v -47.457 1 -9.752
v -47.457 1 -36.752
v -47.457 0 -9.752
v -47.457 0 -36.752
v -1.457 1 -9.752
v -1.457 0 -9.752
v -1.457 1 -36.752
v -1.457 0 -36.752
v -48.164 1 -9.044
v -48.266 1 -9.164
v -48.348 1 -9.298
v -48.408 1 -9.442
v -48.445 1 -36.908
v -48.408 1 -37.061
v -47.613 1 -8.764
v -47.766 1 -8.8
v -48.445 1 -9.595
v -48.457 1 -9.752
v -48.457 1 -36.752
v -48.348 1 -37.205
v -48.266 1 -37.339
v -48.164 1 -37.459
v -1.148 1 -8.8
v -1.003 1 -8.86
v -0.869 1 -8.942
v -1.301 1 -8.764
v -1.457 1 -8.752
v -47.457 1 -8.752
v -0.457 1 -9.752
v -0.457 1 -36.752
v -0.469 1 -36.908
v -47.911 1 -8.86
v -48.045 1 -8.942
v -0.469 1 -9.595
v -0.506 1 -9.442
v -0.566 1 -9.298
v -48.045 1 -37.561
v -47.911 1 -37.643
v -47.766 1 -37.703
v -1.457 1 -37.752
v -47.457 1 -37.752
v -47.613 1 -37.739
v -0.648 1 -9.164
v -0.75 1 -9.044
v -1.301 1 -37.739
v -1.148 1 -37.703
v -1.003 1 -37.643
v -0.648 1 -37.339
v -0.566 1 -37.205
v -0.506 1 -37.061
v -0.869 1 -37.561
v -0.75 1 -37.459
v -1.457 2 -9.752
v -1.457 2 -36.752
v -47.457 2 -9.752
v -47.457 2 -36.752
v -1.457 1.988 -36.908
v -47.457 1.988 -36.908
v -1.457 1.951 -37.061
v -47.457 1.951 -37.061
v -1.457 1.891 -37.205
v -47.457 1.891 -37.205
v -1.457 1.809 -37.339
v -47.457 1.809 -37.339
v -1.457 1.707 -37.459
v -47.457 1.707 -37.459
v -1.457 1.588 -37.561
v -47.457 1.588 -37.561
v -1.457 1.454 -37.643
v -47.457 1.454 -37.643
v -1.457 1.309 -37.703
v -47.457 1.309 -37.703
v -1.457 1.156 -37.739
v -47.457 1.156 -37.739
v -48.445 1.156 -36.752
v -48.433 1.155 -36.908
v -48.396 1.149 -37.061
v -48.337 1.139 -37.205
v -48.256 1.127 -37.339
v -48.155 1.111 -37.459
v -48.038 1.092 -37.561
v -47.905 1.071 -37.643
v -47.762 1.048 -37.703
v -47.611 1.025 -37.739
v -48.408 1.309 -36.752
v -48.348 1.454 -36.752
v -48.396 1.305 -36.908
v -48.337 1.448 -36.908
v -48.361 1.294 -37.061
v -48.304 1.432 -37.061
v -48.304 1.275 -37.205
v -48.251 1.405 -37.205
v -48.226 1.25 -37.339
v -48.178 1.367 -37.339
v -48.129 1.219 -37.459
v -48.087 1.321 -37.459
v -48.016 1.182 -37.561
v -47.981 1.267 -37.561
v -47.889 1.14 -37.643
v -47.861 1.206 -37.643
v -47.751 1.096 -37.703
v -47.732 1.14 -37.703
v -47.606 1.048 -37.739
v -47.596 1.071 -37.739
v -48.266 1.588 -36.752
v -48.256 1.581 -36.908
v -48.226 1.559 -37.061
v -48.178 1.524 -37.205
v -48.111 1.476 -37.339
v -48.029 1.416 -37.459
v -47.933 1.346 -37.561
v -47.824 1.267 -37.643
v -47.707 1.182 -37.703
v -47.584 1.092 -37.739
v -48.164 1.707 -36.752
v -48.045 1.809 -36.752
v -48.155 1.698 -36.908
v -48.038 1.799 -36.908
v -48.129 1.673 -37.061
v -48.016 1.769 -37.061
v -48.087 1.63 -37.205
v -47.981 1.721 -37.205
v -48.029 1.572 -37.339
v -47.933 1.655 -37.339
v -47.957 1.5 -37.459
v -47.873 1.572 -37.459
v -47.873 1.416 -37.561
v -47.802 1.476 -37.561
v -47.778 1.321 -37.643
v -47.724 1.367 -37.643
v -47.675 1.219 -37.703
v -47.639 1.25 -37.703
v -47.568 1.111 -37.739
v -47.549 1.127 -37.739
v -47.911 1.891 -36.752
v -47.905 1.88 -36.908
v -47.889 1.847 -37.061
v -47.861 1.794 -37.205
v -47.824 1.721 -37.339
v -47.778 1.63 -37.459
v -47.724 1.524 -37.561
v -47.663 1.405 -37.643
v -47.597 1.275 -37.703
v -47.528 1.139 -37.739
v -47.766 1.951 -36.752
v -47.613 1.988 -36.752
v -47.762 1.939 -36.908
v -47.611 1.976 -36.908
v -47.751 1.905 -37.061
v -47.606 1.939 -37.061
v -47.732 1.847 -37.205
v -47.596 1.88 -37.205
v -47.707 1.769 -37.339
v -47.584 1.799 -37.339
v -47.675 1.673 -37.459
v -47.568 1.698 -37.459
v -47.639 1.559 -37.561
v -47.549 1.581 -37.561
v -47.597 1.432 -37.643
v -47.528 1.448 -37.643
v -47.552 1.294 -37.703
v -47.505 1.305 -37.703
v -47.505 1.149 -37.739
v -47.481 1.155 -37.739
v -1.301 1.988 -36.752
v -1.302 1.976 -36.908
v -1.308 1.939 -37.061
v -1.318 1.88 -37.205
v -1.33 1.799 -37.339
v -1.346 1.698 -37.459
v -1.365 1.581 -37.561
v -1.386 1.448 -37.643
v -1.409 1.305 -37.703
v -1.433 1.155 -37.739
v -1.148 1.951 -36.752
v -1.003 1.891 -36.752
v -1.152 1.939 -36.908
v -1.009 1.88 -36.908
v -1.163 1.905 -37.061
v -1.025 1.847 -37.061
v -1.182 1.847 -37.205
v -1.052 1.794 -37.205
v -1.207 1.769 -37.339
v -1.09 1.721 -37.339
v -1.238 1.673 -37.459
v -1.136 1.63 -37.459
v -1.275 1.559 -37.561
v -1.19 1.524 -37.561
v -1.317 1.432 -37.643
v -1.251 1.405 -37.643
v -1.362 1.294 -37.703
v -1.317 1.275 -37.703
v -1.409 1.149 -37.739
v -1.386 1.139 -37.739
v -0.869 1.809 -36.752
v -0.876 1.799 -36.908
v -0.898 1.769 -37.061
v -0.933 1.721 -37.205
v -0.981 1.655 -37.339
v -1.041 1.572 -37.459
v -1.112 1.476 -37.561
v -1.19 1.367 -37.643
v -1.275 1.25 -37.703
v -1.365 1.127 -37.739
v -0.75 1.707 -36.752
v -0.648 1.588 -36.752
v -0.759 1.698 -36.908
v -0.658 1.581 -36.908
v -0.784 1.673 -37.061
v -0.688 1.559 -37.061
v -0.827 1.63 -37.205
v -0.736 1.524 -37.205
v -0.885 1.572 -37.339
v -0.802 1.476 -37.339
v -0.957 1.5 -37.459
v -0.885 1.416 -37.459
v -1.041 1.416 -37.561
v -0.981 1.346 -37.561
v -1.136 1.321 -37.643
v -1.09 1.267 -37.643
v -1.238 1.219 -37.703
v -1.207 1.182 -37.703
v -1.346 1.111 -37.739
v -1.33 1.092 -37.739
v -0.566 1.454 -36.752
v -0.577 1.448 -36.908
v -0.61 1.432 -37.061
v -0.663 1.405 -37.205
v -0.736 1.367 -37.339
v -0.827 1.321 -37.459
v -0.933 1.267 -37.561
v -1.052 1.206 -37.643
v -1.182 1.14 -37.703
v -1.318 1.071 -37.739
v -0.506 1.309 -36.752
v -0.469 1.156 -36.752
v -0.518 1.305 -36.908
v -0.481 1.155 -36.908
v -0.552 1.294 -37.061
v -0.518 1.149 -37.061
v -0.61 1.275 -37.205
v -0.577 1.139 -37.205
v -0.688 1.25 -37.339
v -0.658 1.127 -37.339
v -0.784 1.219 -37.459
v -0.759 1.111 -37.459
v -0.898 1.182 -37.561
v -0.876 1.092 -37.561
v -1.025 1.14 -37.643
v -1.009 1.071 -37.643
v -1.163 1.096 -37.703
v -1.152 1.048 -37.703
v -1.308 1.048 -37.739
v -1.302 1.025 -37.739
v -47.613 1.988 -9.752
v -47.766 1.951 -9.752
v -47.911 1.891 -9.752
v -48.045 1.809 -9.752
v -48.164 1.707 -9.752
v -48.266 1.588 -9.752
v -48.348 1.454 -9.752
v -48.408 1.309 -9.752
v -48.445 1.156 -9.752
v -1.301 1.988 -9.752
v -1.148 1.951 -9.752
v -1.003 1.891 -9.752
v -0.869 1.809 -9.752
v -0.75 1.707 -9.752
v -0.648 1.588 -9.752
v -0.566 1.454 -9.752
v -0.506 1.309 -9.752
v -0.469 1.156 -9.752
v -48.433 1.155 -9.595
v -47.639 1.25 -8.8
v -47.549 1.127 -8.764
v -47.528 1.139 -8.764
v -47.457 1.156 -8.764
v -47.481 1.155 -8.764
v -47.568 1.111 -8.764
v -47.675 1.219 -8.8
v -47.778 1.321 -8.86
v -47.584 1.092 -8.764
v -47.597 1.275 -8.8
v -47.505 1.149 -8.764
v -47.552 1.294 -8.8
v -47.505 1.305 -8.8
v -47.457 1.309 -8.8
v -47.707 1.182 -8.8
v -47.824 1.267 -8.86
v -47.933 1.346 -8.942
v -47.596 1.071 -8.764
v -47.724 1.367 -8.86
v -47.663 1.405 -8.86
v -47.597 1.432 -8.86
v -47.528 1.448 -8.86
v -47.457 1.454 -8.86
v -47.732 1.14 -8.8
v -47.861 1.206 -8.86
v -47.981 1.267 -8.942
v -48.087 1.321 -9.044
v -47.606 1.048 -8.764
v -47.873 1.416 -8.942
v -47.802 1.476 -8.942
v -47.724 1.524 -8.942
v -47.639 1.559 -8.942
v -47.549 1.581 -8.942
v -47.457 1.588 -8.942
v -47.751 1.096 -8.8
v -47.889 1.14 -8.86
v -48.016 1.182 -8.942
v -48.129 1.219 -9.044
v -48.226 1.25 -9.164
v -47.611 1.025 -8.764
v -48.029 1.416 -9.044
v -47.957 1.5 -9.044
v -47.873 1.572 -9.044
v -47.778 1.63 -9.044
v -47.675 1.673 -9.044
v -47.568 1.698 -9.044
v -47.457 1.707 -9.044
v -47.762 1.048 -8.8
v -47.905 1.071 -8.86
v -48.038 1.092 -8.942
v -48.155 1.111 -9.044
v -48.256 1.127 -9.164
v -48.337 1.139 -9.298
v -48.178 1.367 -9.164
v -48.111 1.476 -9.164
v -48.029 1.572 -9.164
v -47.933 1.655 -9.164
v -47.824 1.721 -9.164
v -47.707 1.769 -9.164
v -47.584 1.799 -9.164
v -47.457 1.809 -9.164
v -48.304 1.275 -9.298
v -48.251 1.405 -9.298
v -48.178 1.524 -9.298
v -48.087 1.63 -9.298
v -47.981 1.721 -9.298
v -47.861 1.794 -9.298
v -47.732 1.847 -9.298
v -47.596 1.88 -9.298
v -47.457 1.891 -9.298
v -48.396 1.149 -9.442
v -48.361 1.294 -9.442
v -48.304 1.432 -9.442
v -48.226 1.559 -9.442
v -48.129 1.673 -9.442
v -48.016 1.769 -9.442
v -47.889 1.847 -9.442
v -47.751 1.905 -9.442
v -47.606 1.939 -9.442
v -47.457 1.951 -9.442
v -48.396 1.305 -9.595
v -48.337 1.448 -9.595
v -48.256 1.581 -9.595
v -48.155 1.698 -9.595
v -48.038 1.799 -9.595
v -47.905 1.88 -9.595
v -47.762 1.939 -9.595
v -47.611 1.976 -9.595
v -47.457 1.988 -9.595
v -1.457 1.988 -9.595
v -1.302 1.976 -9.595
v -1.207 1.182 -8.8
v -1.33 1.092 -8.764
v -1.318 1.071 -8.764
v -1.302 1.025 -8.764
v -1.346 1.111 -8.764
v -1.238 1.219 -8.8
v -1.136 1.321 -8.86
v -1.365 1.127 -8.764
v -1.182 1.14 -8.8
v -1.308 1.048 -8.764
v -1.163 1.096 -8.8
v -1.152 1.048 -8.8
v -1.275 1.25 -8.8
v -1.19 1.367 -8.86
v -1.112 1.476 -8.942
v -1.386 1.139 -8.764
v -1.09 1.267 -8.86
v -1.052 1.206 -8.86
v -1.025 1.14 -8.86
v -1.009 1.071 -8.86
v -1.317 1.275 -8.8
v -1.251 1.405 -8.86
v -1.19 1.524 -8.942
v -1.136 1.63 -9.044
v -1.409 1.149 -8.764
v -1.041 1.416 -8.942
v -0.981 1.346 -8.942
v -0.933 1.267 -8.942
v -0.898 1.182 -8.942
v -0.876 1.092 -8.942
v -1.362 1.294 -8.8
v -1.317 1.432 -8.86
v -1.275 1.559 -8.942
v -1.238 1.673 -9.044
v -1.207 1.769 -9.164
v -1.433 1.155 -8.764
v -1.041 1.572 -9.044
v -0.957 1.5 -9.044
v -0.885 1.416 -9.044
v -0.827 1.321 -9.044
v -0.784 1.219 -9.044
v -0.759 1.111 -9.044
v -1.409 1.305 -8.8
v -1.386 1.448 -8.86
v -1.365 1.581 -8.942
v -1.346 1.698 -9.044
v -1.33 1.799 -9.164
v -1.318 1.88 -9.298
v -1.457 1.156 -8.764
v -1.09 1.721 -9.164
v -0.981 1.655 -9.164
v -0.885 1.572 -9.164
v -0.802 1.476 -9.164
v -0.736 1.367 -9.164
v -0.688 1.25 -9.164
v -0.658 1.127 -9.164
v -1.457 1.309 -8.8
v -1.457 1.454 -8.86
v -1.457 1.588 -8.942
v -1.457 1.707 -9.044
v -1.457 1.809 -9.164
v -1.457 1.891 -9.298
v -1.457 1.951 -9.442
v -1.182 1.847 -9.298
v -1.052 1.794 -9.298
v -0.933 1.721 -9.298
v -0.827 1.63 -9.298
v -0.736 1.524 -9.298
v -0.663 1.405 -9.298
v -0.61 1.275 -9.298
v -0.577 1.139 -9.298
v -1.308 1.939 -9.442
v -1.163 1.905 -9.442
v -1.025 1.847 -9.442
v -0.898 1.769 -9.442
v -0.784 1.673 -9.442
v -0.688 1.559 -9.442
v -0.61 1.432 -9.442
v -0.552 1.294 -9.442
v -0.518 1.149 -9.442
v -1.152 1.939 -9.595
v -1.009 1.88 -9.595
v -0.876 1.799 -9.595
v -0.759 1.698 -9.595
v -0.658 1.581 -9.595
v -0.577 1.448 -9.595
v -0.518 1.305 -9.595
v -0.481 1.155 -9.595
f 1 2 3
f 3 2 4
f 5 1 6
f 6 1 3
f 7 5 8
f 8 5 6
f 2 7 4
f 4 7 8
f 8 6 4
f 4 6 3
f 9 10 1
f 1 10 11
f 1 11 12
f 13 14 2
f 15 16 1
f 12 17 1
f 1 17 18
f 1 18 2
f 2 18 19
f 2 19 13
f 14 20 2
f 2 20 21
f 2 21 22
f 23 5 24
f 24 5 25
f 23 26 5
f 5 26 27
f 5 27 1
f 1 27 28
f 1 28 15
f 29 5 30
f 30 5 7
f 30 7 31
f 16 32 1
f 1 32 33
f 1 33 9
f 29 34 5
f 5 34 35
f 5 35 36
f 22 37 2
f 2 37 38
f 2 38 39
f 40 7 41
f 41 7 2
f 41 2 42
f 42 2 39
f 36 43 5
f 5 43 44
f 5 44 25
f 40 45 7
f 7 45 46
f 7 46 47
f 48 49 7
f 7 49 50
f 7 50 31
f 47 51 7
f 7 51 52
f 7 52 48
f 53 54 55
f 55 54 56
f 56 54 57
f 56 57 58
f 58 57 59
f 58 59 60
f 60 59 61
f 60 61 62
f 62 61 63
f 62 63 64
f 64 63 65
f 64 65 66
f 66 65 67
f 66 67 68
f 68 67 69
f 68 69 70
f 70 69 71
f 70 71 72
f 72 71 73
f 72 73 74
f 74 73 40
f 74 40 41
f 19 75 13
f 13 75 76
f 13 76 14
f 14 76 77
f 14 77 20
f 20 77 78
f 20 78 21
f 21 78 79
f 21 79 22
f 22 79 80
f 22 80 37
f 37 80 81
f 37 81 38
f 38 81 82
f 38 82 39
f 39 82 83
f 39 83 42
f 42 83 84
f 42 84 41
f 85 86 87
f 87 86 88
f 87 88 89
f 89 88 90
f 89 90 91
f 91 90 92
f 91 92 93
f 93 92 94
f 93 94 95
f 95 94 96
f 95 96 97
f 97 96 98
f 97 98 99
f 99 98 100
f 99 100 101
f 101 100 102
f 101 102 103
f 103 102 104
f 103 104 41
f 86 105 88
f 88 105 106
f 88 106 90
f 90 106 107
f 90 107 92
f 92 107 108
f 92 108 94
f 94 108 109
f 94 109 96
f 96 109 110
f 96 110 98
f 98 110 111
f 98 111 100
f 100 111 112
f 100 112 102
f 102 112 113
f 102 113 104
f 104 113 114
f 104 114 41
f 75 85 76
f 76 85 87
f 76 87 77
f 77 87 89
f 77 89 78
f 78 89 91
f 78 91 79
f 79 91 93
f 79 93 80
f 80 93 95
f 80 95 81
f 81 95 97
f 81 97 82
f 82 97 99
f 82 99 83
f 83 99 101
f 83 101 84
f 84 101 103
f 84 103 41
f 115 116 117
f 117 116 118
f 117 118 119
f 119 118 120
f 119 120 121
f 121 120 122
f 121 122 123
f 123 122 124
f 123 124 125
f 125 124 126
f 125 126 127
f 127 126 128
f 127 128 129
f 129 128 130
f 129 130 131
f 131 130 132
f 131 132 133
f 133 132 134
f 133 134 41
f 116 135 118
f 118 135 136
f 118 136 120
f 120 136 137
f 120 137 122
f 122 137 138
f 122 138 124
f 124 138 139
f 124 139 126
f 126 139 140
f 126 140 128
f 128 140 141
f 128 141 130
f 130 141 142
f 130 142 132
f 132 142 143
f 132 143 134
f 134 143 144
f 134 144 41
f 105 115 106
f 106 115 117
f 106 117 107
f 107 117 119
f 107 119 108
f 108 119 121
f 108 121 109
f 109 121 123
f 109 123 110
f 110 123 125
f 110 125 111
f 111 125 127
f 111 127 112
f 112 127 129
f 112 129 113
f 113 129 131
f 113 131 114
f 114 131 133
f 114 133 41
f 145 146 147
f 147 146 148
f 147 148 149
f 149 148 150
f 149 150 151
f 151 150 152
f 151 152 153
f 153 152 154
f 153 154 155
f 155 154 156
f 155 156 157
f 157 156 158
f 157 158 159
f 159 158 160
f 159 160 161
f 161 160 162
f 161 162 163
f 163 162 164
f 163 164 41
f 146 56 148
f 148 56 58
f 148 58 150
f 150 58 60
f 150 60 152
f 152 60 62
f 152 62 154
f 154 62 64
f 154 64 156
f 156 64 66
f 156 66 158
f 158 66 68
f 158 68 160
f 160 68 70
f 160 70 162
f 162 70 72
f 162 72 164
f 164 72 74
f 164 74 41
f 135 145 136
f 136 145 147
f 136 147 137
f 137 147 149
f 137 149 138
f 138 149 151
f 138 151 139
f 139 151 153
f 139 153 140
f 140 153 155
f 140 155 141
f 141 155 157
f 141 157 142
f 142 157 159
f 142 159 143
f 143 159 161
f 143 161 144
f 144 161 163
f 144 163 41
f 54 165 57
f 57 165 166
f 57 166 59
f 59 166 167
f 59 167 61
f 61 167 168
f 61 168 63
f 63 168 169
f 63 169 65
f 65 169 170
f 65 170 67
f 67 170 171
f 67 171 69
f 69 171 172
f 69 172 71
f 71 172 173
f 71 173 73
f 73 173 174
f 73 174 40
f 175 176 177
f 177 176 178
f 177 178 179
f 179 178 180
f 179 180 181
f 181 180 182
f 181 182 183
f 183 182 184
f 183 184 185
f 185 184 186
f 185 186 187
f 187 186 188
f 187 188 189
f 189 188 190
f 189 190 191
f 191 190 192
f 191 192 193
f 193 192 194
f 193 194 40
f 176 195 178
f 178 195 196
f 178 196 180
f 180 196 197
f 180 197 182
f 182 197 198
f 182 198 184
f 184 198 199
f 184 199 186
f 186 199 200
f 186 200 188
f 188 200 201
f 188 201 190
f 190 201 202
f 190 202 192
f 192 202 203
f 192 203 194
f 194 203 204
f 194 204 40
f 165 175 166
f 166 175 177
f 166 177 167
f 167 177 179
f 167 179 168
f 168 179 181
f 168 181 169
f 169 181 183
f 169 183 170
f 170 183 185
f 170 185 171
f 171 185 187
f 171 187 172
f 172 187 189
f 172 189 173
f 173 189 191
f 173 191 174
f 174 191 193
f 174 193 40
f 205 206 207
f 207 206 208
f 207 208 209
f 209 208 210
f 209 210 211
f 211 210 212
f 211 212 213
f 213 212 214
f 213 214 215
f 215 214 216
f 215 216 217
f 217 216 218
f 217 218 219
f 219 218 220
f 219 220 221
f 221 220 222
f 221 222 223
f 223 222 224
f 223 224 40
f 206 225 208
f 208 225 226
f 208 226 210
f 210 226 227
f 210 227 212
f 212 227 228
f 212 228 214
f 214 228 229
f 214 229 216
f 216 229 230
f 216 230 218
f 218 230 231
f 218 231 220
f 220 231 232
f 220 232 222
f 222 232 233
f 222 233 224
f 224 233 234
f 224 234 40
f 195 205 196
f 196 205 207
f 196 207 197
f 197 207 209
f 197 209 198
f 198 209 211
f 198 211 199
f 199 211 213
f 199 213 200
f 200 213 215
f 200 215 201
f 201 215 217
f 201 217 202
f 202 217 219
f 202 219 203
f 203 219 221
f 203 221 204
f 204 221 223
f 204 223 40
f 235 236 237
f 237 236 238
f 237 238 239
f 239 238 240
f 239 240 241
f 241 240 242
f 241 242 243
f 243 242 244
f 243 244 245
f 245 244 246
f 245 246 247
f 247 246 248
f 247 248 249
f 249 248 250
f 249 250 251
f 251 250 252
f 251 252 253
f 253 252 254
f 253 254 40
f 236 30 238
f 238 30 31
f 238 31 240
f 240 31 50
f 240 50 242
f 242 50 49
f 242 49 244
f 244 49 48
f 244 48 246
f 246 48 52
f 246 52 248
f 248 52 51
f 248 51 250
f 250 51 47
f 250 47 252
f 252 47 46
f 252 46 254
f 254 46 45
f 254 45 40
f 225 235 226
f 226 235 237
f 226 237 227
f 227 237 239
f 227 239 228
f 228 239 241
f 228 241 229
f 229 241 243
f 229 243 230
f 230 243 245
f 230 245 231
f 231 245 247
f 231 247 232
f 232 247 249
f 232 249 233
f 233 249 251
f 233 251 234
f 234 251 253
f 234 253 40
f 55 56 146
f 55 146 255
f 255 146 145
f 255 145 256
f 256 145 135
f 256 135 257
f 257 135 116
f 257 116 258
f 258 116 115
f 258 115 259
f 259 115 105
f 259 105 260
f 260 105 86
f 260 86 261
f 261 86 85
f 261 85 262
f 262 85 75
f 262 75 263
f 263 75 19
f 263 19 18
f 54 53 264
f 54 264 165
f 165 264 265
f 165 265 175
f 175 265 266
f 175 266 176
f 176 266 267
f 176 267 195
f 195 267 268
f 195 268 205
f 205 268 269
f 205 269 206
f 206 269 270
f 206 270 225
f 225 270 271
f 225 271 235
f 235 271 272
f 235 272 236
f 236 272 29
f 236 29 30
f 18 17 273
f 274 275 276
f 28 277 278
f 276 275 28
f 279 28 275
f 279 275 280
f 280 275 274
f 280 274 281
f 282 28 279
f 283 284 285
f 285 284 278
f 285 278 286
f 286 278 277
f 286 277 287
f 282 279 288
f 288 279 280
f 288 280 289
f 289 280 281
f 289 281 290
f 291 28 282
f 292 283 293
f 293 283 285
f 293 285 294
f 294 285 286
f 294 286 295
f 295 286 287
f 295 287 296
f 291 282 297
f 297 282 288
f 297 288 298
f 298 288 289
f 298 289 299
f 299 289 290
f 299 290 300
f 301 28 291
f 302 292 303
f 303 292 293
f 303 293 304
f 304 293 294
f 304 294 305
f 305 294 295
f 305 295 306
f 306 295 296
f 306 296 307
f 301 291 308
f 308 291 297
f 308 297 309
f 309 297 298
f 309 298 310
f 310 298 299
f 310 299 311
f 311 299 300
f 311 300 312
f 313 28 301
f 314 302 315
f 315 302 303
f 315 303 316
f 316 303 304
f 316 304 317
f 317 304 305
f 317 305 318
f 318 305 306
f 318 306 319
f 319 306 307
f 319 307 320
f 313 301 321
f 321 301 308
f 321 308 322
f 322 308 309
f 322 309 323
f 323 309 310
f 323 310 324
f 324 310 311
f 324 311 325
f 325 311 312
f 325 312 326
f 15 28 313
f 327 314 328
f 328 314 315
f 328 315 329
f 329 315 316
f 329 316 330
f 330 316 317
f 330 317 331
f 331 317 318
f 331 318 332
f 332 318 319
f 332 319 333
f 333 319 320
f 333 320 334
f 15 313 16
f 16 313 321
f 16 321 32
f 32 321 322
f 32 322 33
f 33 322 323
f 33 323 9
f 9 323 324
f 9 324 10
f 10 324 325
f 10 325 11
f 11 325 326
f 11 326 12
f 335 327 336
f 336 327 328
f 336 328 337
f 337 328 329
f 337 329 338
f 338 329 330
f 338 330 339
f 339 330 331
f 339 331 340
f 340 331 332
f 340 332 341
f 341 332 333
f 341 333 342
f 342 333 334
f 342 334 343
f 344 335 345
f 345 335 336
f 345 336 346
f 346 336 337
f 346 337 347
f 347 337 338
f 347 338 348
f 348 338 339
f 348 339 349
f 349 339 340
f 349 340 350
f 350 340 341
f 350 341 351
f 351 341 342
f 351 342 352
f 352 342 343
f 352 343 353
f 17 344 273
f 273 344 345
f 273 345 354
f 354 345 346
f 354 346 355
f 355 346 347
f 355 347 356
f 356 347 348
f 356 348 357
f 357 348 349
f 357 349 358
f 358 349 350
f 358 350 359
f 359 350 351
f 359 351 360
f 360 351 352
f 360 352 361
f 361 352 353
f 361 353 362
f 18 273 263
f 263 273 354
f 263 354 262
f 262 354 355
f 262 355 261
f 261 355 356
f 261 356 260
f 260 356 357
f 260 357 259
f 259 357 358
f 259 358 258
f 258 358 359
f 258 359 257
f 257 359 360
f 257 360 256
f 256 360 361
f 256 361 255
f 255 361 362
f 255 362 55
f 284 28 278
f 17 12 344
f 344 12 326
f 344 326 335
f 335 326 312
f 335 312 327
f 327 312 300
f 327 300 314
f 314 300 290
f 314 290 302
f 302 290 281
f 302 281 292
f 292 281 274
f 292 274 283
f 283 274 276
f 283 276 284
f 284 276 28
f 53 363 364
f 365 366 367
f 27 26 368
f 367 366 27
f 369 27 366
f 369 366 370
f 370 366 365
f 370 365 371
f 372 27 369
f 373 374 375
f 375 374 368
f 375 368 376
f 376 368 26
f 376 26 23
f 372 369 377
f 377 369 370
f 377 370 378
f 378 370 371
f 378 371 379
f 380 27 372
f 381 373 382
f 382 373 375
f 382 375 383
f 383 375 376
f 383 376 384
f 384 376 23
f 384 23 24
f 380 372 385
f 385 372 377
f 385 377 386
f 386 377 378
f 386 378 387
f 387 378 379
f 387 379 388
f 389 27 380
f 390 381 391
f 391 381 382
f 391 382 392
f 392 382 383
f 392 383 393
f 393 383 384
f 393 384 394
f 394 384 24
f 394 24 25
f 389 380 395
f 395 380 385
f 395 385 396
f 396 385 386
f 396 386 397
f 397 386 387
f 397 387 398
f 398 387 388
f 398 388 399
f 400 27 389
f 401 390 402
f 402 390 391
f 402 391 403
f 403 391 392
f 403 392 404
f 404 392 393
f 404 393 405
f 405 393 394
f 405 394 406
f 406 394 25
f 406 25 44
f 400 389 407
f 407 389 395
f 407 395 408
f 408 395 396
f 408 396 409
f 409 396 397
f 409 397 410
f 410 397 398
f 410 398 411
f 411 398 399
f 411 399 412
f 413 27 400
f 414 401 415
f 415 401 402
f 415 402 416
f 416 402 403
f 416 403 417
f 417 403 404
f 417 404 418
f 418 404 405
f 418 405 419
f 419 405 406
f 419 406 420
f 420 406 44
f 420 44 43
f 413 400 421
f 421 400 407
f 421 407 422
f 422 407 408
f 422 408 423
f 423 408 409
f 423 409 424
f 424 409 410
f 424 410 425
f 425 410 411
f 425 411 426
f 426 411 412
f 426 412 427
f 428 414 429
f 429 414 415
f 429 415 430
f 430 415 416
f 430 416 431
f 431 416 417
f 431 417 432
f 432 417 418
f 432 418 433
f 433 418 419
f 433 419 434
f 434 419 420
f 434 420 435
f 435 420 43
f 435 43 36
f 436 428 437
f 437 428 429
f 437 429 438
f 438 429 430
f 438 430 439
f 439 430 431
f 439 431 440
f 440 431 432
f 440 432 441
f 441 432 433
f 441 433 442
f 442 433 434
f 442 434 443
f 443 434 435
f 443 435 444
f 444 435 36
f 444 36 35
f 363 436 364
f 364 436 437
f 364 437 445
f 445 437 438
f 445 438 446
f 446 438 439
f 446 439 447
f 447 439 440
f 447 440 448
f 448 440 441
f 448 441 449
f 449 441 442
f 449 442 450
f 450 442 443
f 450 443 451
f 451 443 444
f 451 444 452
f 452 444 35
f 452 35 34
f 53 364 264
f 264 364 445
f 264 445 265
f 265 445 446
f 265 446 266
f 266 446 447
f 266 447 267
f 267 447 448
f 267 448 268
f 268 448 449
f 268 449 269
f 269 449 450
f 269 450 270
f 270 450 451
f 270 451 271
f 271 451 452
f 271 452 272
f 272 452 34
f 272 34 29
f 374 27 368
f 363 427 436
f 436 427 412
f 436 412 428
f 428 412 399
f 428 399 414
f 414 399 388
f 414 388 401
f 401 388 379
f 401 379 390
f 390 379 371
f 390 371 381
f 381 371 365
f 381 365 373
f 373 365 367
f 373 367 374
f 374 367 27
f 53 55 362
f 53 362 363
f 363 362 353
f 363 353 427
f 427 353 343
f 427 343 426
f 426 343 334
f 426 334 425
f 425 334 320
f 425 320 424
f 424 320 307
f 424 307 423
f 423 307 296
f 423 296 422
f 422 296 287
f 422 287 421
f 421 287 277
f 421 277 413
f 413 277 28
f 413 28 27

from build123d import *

# Parameters (mm, degrees)
SKETCH_1_W      = 46
SKETCH_1_H      = 27
EXTRUDE_1_DEPTH = 1
SKETCH_2_W      = 48
SKETCH_2_H      = 29
EXTRUDE_2_DEPTH = 1
FILLET_1_R      = 1


with BuildPart() as part:
    # ｽｹｯﾁ1 → ﾎﾞｽ - 押し出し1 (new body)
    with BuildSketch(Plane(origin=(0, 0, 0), x_dir=(1, 0, 0), z_dir=(0, 1, 0))):
        with Locations((-24.456990453, 23.251505547)):
            Rectangle(SKETCH_1_W, SKETCH_1_H)
    extrude(amount=EXTRUDE_1_DEPTH)

    # ｽｹｯﾁ2 → ﾎﾞｽ - 押し出し2 (add)
    with BuildSketch(Plane(origin=(0, 1, 0), x_dir=(1, 0, 0), z_dir=(0, 1, 0))):
        with Locations((-24.456990453, 23.251505547)):
            Rectangle(SKETCH_2_W, SKETCH_2_H)
    extrude(amount=EXTRUDE_2_DEPTH)

    # ﾌｨﾚｯﾄ1
    fillet_1_edges = [part.edges().sort_by_distance(p)[0] for p in [
        (-48.456990453, 1.5, -37.751505547),
        (-48.456990453, 1.5, -8.751505547),
        (-0.456990453, 1.5, -8.751505547),
        (-0.456990453, 1.5, -37.751505547),
        (-48.456990453, 2, -23.251505547),
        (-24.456990453, 2, -8.751505547),
        (-0.456990453, 2, -23.251505547),
        (-24.456990453, 2, -37.751505547),
    ]]
    fillet(fillet_1_edges, radius=FILLET_1_R - 0.0001)  # a hair under: the kernel refuses the full size


solid = part.part
